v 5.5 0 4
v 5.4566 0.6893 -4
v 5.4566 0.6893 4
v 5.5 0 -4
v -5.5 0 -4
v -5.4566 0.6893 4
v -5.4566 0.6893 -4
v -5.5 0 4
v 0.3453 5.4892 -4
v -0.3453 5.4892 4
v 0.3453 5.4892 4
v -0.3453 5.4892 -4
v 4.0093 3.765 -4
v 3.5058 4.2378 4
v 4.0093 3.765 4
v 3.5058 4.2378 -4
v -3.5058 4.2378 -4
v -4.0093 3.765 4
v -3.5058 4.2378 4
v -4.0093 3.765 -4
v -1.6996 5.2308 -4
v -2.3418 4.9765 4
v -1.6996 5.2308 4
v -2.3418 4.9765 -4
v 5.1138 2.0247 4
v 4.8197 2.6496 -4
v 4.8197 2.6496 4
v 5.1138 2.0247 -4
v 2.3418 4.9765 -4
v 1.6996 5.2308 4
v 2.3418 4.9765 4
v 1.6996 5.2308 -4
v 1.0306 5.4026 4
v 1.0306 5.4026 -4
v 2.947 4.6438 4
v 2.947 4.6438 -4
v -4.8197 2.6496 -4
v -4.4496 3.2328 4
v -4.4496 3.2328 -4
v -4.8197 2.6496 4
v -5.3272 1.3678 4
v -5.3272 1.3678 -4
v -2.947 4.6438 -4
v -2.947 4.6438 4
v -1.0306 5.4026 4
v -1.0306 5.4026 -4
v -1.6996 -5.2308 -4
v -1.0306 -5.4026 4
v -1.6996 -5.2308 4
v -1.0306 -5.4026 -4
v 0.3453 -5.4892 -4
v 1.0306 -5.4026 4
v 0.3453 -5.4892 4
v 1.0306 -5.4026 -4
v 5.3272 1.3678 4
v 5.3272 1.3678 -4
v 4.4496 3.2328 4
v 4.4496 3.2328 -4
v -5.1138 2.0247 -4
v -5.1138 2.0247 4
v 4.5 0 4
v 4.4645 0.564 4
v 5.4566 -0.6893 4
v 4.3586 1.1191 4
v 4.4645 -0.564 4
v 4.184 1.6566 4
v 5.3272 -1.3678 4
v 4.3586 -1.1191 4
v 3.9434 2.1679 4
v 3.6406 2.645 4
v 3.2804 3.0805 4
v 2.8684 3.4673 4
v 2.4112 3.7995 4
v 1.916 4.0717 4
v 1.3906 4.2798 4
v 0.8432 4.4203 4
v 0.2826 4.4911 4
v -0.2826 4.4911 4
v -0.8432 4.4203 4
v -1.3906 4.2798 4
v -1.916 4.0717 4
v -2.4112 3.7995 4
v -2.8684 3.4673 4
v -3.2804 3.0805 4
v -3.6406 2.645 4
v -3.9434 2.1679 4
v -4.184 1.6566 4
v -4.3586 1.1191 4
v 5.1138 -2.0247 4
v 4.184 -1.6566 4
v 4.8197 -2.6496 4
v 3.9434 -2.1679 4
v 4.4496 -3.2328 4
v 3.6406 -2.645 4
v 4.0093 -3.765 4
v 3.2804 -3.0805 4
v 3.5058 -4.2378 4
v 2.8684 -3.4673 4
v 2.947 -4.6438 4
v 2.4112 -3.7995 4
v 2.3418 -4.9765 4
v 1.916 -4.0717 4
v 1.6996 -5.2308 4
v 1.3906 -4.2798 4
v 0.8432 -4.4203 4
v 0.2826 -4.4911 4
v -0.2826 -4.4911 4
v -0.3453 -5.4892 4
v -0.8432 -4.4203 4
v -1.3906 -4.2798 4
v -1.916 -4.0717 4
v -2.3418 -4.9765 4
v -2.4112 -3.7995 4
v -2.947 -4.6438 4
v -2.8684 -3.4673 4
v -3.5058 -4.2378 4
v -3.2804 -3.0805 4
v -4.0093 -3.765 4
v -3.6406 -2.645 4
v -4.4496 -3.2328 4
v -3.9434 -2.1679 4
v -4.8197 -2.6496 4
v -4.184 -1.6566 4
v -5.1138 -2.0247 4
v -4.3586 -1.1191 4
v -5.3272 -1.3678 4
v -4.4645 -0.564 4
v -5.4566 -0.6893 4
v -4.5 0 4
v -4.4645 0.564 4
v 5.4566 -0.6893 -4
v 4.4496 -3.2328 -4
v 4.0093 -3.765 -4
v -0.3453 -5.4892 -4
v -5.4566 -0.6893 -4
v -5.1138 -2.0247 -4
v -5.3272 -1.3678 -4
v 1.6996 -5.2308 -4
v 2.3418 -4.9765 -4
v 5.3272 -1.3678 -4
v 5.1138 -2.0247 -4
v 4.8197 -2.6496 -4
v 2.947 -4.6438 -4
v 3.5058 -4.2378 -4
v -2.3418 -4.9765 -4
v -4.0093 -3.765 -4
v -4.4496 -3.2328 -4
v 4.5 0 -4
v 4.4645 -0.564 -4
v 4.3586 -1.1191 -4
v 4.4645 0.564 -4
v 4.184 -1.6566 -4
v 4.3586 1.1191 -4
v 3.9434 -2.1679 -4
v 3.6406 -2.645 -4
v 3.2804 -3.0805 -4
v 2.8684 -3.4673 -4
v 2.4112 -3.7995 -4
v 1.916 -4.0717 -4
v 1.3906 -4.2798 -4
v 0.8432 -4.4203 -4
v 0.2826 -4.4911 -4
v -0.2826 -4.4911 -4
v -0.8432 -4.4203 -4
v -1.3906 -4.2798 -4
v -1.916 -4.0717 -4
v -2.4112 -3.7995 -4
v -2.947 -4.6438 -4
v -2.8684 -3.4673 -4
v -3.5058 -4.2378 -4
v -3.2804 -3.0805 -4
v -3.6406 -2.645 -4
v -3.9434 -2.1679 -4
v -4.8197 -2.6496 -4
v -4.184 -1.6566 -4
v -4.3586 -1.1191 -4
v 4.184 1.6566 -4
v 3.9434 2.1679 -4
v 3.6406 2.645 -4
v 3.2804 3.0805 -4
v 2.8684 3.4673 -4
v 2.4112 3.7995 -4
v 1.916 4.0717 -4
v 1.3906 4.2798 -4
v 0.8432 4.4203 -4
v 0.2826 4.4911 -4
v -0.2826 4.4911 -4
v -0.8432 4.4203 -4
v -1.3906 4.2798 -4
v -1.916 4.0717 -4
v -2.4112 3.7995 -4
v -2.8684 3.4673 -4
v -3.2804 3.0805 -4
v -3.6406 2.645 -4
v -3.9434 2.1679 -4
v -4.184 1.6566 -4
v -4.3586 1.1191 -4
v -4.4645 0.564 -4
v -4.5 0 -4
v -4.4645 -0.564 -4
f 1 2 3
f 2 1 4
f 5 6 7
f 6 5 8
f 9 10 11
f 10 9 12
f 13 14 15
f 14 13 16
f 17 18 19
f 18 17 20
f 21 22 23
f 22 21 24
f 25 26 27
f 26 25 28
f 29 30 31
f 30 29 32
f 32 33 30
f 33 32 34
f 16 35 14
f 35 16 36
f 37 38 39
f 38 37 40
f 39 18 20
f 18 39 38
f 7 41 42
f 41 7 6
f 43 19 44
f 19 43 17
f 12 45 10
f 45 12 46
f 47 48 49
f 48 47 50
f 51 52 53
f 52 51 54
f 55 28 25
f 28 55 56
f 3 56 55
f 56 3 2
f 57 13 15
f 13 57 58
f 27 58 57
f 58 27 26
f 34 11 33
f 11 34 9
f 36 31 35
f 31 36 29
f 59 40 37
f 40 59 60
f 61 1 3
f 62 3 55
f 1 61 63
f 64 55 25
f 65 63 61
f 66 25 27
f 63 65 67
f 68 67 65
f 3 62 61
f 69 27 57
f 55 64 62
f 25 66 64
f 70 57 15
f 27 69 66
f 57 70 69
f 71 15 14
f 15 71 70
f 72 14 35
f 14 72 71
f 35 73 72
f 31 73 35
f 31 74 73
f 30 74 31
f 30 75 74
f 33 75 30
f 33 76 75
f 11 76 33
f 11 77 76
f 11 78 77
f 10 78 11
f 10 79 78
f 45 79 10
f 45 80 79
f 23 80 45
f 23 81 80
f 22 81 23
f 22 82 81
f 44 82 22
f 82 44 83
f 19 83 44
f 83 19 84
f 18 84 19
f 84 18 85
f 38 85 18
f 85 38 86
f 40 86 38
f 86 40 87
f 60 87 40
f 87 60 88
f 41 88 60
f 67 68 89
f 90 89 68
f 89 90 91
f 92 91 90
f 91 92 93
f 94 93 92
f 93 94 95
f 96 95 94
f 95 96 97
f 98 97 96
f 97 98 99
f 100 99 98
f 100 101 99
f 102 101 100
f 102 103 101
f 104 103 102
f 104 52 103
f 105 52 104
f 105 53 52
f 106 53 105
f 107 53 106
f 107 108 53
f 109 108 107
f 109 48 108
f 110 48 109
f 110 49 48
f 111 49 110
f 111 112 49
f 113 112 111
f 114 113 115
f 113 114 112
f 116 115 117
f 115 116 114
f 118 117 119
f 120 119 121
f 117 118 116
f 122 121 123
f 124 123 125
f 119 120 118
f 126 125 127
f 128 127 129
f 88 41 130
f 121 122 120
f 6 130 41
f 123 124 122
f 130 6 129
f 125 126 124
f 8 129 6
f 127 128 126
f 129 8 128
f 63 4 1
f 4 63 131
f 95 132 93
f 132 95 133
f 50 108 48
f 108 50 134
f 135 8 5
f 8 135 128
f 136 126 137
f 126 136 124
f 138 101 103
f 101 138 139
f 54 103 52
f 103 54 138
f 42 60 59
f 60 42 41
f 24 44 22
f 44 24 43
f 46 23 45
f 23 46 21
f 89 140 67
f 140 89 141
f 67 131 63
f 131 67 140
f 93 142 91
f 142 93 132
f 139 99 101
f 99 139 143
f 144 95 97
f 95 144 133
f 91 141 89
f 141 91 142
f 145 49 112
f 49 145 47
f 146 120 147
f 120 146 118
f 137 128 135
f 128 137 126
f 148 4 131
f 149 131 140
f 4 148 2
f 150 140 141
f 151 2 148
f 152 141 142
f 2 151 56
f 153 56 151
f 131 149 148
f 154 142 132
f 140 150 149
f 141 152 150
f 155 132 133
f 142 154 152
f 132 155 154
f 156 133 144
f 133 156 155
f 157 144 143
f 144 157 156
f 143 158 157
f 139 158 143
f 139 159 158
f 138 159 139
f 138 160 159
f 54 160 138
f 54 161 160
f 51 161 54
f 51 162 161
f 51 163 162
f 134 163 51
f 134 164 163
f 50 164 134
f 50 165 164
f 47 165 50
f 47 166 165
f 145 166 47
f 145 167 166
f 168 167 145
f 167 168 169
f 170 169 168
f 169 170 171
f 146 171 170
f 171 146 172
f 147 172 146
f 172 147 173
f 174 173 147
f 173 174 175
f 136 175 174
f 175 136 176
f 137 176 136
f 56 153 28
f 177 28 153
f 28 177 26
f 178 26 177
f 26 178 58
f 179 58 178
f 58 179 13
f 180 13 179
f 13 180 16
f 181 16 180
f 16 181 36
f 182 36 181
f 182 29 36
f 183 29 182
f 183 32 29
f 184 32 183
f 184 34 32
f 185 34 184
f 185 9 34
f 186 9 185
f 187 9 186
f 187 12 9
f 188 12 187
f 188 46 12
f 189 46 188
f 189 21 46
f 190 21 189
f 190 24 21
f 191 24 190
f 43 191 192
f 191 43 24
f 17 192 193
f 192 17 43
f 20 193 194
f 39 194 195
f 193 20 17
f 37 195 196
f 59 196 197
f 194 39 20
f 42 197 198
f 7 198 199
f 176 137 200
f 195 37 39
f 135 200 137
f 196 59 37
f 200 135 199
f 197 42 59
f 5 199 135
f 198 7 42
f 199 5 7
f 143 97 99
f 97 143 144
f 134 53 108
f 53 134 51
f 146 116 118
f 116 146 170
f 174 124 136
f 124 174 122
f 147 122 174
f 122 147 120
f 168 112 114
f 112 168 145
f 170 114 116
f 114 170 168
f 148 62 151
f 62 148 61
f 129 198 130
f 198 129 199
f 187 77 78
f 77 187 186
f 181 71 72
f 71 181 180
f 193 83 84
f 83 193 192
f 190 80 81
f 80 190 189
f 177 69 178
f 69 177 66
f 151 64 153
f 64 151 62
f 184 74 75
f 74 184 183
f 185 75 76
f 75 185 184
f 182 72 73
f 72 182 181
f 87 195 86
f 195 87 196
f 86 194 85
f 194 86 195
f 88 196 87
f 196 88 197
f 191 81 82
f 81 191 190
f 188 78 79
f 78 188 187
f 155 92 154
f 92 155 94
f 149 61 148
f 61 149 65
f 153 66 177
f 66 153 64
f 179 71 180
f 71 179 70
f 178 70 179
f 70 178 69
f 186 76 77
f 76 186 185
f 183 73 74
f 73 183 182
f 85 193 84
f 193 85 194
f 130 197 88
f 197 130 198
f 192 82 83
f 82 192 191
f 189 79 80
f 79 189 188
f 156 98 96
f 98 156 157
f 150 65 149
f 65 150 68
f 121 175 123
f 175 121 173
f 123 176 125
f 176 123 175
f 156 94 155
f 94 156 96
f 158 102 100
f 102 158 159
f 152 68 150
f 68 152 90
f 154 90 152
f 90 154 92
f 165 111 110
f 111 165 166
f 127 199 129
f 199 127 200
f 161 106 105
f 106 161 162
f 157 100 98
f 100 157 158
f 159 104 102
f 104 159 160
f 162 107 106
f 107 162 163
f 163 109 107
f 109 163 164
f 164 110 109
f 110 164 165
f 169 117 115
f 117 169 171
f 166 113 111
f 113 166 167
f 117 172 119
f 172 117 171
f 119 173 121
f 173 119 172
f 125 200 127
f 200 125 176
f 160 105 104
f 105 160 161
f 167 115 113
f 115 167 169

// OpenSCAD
$fn = 50;


difference() {
	union() {
		translate(v = [0, 0, -4.0000000000]) {
			cylinder(h = 8, r = 5.5000000000);
		}
	}
	union() {
		translate(v = [0, 0, -100.0000000000]) {
			cylinder(h = 200, r = 4.5000000000);
		}
	}
}
